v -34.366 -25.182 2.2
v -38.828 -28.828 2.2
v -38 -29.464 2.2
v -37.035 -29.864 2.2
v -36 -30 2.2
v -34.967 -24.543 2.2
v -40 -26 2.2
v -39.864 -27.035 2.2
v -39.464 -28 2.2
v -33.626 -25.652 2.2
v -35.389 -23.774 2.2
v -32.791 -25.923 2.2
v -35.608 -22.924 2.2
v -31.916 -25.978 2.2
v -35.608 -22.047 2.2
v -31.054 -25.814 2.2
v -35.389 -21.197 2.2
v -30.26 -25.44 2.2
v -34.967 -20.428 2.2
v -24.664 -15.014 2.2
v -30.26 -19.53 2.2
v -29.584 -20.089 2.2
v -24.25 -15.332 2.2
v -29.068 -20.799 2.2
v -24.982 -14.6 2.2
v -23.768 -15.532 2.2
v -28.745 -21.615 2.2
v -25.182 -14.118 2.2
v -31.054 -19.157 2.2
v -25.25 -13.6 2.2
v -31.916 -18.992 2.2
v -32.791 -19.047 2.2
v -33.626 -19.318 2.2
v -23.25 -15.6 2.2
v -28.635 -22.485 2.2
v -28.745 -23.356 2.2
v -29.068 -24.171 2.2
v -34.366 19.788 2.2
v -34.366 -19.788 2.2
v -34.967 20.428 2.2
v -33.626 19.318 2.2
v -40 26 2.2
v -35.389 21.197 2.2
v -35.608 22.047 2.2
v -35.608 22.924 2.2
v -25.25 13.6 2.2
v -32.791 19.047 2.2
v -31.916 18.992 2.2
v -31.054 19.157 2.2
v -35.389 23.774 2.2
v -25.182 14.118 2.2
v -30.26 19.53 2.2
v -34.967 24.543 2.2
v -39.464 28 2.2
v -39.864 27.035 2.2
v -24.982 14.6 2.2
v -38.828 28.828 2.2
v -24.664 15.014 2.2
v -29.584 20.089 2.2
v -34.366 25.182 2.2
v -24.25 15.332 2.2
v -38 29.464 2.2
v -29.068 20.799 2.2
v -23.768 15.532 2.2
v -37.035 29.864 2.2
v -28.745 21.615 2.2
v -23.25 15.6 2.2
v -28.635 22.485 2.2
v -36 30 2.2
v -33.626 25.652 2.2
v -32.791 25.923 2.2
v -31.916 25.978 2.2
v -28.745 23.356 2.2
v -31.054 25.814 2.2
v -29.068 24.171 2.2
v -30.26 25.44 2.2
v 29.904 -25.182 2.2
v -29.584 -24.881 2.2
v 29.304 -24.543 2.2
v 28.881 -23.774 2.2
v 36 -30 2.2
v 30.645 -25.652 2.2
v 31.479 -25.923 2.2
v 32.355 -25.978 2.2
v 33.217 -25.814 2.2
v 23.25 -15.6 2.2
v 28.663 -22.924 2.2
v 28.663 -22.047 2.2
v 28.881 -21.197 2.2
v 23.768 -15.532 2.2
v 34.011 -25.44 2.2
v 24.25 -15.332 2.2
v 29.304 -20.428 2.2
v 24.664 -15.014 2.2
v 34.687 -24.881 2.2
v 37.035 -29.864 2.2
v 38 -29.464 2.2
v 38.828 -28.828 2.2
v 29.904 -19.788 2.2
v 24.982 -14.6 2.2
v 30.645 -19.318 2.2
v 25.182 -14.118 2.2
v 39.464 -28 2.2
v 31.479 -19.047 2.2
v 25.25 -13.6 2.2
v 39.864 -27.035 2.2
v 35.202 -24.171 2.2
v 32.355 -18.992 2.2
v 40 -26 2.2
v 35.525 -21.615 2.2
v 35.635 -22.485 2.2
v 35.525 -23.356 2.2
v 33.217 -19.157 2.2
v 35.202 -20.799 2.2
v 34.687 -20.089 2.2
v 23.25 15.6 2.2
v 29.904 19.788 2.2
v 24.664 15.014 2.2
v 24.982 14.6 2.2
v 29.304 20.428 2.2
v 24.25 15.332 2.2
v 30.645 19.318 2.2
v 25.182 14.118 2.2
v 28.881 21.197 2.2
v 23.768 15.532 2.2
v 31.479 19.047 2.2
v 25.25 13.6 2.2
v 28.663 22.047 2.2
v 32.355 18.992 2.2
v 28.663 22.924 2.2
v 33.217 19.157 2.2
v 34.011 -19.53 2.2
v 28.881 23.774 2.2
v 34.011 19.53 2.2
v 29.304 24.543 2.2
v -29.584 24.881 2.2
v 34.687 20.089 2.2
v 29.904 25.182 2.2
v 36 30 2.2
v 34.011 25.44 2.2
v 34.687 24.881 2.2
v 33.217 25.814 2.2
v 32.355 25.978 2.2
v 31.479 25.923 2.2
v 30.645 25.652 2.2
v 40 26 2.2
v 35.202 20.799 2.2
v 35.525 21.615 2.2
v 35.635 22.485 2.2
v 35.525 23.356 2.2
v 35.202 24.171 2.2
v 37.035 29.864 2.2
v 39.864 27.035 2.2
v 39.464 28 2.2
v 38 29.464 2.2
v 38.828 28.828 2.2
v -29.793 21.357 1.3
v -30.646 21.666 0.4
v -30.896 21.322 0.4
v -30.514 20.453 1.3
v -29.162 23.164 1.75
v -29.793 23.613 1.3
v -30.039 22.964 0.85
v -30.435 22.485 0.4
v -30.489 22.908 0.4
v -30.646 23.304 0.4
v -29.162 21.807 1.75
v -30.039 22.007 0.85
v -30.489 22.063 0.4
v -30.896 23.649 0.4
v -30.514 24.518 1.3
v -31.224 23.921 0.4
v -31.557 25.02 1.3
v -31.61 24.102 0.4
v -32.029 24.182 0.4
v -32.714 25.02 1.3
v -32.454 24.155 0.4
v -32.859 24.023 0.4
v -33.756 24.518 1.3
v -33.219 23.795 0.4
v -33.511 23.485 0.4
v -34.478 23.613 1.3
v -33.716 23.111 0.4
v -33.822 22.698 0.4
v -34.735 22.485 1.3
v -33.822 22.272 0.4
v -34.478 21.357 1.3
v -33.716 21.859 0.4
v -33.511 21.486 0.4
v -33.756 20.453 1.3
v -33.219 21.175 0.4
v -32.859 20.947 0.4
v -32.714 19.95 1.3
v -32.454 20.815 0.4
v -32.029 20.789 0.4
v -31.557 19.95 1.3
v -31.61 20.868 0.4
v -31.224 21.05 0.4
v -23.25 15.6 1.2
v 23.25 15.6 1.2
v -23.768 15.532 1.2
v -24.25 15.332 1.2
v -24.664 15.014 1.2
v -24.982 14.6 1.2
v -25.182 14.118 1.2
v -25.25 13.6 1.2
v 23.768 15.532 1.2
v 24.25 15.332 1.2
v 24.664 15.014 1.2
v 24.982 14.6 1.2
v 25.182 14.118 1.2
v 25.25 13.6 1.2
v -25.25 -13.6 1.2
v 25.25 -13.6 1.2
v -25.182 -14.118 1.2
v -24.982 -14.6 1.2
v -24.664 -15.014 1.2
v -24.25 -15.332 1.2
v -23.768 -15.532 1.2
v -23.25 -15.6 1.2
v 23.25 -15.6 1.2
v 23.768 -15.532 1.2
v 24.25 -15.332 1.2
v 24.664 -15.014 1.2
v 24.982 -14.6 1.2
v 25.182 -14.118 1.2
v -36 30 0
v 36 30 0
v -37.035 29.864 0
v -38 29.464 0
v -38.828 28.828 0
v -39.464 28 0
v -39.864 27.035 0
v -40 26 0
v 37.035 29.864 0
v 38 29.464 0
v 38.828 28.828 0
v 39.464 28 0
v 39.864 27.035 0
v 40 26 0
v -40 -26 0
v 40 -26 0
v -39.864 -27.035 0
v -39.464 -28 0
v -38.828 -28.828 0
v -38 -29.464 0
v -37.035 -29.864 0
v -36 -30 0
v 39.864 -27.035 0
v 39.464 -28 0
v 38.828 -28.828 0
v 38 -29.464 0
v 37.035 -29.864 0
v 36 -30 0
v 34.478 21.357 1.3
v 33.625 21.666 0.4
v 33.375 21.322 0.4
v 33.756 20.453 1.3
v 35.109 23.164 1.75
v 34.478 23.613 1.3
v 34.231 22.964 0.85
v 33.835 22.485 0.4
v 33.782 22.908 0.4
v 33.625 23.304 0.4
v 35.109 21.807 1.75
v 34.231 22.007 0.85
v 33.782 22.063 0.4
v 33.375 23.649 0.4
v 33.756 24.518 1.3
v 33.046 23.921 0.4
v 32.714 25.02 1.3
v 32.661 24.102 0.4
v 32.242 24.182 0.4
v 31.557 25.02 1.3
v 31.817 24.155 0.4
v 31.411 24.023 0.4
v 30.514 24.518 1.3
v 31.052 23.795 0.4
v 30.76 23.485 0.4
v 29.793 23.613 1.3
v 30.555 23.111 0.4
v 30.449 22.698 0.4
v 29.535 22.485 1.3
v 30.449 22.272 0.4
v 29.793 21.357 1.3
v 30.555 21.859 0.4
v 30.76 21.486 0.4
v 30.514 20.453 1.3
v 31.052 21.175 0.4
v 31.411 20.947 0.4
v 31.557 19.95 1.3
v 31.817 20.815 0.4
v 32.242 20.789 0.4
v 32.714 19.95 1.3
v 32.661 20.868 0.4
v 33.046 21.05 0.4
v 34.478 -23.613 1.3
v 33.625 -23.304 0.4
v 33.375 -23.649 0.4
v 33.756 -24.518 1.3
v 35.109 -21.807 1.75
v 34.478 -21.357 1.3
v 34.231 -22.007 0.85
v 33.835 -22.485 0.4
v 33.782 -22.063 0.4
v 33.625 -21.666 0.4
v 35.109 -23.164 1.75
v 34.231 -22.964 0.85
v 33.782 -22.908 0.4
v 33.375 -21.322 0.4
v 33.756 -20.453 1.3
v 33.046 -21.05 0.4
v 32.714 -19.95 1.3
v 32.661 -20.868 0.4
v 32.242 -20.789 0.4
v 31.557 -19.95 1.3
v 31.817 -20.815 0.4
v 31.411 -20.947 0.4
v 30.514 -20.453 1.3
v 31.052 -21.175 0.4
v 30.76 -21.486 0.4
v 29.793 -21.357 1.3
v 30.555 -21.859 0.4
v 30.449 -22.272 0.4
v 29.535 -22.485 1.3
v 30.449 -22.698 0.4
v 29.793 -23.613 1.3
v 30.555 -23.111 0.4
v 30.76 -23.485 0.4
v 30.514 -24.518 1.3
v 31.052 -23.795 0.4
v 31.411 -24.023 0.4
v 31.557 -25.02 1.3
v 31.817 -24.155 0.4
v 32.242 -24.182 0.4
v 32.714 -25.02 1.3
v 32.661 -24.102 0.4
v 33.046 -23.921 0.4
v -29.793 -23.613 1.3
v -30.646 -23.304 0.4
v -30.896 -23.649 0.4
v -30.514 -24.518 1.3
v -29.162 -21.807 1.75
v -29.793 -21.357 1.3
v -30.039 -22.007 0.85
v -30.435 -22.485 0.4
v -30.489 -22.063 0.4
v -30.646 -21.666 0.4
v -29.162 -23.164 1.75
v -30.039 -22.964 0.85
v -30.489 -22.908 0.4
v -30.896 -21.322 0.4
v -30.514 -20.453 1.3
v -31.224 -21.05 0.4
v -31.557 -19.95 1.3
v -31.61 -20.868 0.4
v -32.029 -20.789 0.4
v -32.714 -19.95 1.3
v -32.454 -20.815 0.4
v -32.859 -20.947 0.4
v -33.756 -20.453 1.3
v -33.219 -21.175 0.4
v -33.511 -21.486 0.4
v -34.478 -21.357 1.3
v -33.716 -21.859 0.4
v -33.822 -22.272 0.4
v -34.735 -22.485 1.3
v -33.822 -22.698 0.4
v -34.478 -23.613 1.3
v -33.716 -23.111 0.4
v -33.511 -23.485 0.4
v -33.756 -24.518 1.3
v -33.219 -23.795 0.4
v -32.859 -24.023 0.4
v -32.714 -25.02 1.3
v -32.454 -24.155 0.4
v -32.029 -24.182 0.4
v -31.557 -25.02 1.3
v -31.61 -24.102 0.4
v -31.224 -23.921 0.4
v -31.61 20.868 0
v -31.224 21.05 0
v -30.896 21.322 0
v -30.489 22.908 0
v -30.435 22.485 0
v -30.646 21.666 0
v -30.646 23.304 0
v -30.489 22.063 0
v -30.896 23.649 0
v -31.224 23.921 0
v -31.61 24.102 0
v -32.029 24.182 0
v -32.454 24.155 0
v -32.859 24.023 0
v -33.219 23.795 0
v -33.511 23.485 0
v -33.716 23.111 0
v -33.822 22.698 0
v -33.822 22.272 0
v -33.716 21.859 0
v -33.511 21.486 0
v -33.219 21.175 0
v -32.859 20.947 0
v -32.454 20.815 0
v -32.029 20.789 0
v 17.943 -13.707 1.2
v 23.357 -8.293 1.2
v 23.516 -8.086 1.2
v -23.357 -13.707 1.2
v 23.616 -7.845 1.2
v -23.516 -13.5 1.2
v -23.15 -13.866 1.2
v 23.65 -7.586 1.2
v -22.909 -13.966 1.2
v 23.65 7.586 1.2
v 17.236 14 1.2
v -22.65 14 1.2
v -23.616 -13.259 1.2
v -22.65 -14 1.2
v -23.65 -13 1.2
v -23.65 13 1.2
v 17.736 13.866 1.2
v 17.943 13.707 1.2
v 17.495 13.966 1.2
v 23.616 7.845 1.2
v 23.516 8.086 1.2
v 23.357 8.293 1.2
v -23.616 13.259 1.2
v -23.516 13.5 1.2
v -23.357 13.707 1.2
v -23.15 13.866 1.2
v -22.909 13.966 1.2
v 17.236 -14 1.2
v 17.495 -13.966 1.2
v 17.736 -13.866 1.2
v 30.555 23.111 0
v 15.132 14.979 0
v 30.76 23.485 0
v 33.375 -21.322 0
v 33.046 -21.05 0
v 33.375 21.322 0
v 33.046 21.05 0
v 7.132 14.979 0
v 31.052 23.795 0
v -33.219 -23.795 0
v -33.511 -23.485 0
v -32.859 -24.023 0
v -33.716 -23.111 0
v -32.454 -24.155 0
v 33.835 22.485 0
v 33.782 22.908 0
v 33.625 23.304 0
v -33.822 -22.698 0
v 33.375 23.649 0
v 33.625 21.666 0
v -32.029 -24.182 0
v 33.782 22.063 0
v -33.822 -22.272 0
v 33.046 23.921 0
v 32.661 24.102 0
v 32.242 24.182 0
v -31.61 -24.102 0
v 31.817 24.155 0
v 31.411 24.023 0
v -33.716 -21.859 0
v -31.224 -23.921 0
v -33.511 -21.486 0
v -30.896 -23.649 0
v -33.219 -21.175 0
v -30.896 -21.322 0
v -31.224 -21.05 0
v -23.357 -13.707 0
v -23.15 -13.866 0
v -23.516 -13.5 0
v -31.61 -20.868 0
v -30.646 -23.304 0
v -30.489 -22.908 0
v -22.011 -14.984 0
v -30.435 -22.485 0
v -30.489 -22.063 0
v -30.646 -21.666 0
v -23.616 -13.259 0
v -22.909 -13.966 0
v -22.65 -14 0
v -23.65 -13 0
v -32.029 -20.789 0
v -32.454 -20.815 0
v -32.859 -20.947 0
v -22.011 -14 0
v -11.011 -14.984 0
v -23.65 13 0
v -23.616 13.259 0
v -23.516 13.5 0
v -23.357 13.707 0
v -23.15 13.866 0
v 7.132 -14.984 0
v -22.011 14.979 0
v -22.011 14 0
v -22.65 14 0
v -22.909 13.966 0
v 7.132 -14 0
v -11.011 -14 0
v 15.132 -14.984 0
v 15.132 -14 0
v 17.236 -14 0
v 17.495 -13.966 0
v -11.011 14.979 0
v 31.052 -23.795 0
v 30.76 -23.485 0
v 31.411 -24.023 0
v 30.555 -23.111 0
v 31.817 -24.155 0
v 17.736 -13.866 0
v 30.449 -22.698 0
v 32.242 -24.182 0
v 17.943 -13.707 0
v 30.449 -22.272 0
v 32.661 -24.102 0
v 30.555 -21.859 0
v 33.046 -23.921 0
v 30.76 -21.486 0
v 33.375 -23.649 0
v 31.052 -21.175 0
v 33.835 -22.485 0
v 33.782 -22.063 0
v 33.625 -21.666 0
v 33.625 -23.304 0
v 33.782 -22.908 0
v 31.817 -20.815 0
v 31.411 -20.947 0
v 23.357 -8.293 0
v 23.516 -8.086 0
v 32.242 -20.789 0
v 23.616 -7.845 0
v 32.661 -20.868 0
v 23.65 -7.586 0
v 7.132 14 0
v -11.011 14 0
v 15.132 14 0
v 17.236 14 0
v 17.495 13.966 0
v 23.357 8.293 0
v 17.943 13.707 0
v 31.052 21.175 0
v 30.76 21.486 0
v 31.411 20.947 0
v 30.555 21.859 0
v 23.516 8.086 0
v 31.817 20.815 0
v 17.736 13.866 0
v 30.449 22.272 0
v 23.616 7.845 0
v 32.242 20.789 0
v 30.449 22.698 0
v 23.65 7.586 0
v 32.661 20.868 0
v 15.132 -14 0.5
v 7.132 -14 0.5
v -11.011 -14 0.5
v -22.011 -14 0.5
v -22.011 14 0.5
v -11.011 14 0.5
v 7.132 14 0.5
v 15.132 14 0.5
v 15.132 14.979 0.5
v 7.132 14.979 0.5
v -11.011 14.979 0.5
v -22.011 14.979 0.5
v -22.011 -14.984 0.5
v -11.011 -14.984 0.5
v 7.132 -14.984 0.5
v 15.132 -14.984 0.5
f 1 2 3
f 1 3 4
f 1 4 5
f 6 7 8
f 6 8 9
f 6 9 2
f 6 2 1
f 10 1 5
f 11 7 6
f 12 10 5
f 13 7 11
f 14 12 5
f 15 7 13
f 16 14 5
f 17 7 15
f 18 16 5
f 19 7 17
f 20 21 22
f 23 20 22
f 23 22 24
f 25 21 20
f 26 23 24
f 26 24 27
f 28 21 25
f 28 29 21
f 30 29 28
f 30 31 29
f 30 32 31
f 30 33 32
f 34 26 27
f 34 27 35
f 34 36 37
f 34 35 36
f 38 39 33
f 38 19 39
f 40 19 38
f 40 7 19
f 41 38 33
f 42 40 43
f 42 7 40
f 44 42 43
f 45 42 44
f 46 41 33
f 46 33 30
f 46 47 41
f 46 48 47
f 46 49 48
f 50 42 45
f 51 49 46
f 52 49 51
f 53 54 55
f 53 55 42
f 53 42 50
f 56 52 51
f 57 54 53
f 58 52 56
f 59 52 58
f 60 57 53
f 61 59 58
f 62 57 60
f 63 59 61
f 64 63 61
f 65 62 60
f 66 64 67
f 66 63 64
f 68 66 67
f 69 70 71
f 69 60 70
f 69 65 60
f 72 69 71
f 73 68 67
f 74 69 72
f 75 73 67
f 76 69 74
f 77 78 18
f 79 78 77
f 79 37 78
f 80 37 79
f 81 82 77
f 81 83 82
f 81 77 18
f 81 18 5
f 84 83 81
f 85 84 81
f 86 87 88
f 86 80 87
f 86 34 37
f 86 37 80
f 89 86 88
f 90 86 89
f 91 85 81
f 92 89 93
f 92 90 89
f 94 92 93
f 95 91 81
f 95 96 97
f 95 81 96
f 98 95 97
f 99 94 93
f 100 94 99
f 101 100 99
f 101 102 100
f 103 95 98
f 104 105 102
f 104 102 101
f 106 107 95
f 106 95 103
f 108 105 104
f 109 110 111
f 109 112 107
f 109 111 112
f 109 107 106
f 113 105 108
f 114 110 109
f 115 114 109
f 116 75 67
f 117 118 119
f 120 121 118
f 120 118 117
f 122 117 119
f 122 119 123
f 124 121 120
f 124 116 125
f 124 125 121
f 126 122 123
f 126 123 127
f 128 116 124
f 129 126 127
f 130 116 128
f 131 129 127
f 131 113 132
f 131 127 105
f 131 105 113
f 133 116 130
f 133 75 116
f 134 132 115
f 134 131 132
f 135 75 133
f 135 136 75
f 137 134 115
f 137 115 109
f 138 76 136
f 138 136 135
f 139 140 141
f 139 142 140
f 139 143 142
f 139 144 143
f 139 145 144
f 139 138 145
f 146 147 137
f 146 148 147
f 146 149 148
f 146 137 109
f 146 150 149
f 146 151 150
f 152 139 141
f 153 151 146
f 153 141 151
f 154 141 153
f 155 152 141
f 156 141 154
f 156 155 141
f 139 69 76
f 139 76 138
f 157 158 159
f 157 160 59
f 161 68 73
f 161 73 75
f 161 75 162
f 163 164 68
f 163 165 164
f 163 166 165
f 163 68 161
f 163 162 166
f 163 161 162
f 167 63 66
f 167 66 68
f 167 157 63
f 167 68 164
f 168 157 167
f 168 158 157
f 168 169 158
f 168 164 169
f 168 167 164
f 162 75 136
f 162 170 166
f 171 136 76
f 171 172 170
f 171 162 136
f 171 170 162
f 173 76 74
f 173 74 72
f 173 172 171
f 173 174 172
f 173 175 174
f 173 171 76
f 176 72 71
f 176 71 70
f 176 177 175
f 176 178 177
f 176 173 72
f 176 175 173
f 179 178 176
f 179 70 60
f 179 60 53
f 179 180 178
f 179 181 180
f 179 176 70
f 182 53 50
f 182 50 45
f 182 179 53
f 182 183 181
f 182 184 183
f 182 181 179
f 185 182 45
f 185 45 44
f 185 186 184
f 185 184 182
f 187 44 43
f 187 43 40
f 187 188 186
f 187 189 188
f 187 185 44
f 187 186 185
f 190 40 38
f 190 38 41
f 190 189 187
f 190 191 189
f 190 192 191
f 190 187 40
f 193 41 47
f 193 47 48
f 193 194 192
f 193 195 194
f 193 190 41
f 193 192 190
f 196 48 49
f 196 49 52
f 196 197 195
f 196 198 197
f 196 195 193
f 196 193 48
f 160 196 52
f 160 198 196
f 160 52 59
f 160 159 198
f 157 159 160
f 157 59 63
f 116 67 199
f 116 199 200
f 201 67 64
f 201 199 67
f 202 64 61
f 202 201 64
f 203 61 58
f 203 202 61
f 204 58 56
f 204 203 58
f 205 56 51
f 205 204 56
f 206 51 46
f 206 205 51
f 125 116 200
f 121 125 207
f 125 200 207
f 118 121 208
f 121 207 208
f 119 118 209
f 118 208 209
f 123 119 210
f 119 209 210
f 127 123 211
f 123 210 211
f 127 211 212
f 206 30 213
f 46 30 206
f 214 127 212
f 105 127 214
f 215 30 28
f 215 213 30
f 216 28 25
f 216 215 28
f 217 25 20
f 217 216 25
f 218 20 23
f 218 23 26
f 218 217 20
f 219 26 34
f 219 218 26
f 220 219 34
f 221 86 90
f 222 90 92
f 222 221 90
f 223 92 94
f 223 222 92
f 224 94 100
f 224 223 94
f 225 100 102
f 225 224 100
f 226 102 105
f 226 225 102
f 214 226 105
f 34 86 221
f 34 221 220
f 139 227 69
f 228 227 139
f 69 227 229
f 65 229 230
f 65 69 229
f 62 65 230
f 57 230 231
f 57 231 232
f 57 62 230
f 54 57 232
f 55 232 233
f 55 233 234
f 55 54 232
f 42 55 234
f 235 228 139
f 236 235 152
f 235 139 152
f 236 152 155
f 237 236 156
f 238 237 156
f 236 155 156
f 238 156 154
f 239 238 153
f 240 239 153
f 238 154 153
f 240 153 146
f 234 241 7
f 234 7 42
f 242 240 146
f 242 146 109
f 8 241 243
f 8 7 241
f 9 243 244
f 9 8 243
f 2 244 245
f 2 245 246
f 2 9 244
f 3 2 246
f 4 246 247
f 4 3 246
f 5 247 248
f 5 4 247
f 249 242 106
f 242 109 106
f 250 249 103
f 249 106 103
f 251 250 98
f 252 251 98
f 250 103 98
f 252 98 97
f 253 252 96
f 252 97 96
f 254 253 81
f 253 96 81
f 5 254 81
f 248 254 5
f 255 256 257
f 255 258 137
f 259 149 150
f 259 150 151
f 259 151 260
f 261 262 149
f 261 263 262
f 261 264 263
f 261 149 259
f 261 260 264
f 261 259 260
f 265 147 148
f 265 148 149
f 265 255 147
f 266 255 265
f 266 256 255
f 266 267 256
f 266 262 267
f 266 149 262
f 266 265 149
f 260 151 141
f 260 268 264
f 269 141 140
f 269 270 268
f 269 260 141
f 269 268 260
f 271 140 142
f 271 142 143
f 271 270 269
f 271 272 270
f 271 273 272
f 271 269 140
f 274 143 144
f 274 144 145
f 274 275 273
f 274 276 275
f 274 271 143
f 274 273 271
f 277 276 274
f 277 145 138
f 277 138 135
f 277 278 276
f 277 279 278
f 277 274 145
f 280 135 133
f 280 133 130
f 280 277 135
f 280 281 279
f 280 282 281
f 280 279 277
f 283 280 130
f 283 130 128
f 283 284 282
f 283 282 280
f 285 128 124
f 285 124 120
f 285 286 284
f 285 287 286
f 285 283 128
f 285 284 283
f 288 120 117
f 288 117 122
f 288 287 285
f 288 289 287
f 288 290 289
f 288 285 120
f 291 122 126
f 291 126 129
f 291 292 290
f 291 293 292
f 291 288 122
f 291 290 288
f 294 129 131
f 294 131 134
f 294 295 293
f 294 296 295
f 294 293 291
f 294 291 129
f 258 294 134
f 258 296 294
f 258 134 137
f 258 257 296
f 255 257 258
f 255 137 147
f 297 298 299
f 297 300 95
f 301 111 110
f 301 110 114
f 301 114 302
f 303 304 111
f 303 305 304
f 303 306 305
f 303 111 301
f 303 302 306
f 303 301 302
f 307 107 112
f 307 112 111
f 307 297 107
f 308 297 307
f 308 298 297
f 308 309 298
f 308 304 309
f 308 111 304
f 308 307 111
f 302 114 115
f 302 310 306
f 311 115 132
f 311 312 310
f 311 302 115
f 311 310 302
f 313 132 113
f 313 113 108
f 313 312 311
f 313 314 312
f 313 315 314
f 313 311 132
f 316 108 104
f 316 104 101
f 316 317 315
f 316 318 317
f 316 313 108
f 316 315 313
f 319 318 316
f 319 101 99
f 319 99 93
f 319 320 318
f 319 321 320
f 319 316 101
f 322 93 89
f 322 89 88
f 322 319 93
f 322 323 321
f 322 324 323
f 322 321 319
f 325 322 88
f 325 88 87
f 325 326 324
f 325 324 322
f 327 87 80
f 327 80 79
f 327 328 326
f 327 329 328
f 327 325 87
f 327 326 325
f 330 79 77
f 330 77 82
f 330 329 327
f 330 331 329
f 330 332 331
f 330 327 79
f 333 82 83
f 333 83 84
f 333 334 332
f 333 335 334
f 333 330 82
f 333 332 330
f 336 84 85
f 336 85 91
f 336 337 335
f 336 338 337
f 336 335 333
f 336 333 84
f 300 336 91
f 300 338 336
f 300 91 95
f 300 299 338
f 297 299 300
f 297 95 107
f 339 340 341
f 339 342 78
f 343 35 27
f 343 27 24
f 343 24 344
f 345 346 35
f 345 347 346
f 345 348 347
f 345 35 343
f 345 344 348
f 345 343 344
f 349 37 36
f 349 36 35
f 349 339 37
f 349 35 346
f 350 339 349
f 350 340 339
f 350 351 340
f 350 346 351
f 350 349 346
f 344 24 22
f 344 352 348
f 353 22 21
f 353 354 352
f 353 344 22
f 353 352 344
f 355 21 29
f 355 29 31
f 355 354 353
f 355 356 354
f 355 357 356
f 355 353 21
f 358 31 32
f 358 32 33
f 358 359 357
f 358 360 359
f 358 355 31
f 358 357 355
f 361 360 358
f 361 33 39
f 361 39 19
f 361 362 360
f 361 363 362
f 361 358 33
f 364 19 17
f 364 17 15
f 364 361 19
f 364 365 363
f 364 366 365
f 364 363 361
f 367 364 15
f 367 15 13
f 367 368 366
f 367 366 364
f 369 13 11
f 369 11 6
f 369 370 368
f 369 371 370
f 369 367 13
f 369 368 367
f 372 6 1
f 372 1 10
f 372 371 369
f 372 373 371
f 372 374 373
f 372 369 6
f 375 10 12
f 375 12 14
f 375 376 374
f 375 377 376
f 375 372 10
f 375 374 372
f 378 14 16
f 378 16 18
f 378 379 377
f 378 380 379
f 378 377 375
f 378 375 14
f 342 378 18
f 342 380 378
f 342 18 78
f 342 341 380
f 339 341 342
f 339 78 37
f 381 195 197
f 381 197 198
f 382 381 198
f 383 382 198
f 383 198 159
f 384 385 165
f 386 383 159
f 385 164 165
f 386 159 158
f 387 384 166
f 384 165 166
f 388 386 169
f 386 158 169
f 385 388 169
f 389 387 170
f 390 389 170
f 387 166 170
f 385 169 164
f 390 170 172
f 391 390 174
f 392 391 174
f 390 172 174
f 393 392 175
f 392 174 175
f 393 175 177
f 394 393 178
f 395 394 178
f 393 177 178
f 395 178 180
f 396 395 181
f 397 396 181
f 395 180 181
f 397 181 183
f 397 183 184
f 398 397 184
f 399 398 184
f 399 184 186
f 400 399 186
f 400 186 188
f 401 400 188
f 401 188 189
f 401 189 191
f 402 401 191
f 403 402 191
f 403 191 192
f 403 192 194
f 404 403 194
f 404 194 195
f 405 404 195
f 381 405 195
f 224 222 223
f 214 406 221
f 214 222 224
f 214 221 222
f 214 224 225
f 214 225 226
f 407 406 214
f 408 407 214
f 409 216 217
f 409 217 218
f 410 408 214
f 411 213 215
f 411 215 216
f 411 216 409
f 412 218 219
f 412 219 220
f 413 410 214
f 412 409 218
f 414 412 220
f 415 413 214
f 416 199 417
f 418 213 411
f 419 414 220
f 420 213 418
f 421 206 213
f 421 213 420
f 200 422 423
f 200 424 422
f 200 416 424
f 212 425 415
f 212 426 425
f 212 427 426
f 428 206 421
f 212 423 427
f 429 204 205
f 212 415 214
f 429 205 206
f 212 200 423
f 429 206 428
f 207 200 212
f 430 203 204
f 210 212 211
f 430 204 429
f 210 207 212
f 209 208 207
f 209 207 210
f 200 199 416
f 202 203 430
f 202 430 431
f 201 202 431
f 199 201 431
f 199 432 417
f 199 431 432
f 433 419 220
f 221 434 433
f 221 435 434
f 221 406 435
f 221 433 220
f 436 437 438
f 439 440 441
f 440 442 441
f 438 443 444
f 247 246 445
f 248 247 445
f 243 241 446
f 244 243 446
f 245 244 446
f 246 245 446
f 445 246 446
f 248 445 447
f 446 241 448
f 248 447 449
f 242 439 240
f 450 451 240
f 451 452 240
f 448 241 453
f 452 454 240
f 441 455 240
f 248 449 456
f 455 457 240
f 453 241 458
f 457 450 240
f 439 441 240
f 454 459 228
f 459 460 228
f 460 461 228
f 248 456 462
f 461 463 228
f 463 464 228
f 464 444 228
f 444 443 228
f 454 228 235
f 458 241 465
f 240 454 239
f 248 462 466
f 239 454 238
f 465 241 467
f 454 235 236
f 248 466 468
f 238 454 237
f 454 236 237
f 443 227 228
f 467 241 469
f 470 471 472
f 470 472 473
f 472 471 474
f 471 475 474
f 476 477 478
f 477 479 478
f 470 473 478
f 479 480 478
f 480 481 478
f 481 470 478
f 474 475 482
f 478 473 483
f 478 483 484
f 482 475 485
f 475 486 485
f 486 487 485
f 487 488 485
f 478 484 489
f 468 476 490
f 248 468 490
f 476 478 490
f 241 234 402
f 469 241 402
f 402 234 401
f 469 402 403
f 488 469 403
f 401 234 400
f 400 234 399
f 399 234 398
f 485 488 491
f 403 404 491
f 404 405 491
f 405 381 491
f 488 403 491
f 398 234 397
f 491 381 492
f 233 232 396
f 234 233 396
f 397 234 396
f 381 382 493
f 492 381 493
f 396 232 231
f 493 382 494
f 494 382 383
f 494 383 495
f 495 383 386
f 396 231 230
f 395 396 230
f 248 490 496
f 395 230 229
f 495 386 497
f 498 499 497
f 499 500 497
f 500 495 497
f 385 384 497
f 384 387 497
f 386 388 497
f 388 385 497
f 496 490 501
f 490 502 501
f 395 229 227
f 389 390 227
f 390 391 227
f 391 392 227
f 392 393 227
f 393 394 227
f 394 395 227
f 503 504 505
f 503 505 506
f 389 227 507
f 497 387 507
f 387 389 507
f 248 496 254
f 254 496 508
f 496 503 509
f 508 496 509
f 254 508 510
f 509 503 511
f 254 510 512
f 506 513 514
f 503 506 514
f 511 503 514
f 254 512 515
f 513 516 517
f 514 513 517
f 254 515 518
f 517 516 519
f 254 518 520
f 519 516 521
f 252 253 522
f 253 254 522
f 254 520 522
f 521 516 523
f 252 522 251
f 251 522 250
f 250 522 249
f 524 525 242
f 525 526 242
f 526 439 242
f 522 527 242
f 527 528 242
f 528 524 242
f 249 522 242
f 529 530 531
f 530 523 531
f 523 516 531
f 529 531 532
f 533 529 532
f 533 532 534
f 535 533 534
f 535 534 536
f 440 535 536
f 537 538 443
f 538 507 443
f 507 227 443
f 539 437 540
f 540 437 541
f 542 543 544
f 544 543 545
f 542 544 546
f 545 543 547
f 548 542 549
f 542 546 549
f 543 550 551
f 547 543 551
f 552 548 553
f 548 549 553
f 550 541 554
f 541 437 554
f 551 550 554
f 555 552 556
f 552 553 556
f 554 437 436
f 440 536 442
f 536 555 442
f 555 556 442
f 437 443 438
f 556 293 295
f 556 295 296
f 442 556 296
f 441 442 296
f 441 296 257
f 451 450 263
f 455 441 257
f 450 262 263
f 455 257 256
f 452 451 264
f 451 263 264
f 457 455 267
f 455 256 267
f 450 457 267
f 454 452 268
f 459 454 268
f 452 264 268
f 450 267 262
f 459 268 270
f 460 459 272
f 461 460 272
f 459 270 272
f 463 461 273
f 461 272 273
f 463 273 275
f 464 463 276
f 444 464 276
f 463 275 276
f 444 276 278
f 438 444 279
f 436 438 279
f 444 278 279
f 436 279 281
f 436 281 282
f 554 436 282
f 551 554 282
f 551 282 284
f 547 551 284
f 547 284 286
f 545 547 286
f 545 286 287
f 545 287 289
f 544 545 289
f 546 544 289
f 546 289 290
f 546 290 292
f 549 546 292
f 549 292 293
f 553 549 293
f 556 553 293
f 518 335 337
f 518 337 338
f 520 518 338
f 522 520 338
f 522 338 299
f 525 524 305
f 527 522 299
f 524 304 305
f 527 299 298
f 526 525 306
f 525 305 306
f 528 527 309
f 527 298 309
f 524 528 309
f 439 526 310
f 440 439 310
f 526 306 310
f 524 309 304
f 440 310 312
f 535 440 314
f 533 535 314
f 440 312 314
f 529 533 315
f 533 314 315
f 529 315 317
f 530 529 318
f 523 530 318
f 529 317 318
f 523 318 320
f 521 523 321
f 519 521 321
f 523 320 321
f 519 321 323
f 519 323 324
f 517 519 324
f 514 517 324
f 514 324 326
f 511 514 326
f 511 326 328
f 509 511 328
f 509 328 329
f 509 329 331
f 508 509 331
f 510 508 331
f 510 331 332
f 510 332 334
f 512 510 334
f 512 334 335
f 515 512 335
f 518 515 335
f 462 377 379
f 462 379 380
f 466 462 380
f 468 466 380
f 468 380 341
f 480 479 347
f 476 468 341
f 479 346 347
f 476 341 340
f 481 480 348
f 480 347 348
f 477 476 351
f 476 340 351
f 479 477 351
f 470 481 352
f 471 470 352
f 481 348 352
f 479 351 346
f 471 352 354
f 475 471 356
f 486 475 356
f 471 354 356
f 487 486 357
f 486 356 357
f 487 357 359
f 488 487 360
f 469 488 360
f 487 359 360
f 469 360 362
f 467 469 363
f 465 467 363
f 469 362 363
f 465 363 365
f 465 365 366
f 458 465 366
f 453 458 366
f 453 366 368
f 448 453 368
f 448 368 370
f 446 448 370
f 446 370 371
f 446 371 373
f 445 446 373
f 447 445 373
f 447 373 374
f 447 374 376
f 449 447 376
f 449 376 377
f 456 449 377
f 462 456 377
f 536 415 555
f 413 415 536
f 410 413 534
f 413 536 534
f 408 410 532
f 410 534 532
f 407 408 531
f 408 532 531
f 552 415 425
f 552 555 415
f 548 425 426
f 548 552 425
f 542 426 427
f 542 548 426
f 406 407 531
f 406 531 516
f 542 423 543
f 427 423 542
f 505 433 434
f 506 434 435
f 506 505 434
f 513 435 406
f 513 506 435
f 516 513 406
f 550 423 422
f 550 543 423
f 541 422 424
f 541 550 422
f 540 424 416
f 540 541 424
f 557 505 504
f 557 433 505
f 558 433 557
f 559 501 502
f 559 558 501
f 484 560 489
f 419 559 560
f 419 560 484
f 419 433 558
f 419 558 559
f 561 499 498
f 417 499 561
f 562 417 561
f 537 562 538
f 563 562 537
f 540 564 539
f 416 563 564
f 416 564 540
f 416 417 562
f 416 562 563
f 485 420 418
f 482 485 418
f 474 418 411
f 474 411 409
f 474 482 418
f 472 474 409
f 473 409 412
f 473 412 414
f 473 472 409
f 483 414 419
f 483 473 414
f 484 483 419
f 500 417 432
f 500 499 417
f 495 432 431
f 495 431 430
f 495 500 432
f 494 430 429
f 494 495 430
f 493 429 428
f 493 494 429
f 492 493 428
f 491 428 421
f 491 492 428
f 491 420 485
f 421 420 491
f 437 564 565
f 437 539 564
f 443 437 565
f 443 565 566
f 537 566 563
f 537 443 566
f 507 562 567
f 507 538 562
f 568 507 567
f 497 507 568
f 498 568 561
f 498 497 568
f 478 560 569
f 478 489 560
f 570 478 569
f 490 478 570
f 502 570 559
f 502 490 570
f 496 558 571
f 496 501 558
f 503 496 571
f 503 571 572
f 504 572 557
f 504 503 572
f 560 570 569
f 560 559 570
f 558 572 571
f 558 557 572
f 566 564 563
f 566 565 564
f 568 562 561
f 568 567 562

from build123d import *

# Parameters (mm, degrees)
SKETCH_W        = 80
SKETCH_H        = 60
PAD_DEPTH       = 2.2
POCKET_DEPTH    = 2.201
FILLET_R        = 4
SKETCH002_R     = 1.7
POCKET001_DEPTH = 2.201
SKETCH003_W     = 50.5
SKETCH003_H     = 31.2
POCKET002_DEPTH = 1
FILLET001_R     = 2
FILLET002_R     = 1
CHAMFER_SIZE    = 1.8
SKETCH004_W     = 11
SKETCH004_H     = 1
SKETCH004_W_2   = 8
POCKET003_DEPTH = 0.5


with BuildPart() as part:
    # Sketch → Pad (new body)
    with BuildSketch(Plane.XY):
        Rectangle(SKETCH_W, SKETCH_H)
    extrude(amount=PAD_DEPTH)

    # Sketch001 → Pocket (cut, through all)
    with BuildSketch(Plane.XY.offset(2.2)):
        Polygon((-23.65, 14), (17.65, 14), (23.65, 8), (23.65, -8), (17.65, -14), (-23.65, -14), align=None)
    extrude(amount=-POCKET_DEPTH, mode=Mode.SUBTRACT)

    # Fillet
    fillet_edges = [part.edges().sort_by_distance(p)[0] for p in [
        (-40, -30, 1.1),
        (-40, 30, 1.1),
        (40, -30, 1.1),
        (40, 30, 1.1),
    ]]
    fillet(fillet_edges, radius=FILLET_R)

    # Sketch002 → Pocket001 (cut, through all)
    with BuildSketch(Plane.XY.offset(2.2)):
        with Locations((-32.135281, 22.485281)):
            Circle(SKETCH002_R)
        with Locations((32.135281, 22.485281)):
            Circle(SKETCH002_R)
        with Locations((32.135281, -22.485281)):
            Circle(SKETCH002_R)
        with Locations((-32.135281, -22.485281)):
            Circle(SKETCH002_R)
    extrude(amount=-POCKET001_DEPTH, mode=Mode.SUBTRACT)

    # Sketch003 → Pocket002 (cut)
    with BuildSketch(Plane.XY.offset(2.2)):
        Rectangle(SKETCH003_W, SKETCH003_H)
    extrude(amount=-POCKET002_DEPTH, mode=Mode.SUBTRACT)

    # Fillet001
    fillet001_edges = [part.edges().sort_by_distance(p)[0] for p in [
        (-25.25, -15.6, 1.7),
        (25.25, -15.6, 1.7),
        (-25.25, 15.6, 1.7),
        (25.25, 15.6, 1.7),
    ]]
    fillet(fillet001_edges, radius=FILLET001_R)

    # Fillet002
    fillet002_edges = [part.edges().sort_by_distance(p)[0] for p in [
        (17.65, -14, 0.6),
        (-23.65, -14, 0.6),
        (23.65, -8, 0.6),
        (23.65, 8, 0.6),
        (-23.65, 14, 0.6),
        (17.65, 14, 0.6),
    ]]
    fillet(fillet002_edges, radius=FILLET002_R)

    # Chamfer
    chamfer_edges = [part.edges().sort_by_distance(p)[0] for p in [
        (-33.835281, 22.485281, 2.2),
        (30.435281, 22.485281, 2.2),
        (30.435281, -22.485281, 2.2),
        (-33.835281, -22.485281, 2.2),
    ]]
    chamfer(chamfer_edges, length=CHAMFER_SIZE)

    # Sketch004 → Pocket003 (cut)
    with BuildSketch(Plane(origin=(0, 0, 0), x_dir=(1, 0, 0), z_dir=(0, 0, -1))):
        with Locations((-16.51054, 14.48414)):
            Rectangle(SKETCH004_W, SKETCH004_H)
        with Locations((-16.51054, -14.479152)):
            Rectangle(SKETCH004_W, SKETCH004_H)
        with Locations((11.1315, 14.48414)):
            Rectangle(SKETCH004_W_2, SKETCH004_H)
        with Locations((11.1315, -14.479152)):
            Rectangle(SKETCH004_W_2, SKETCH004_H)
    extrude(amount=-POCKET003_DEPTH, mode=Mode.SUBTRACT)


solid = part.part
